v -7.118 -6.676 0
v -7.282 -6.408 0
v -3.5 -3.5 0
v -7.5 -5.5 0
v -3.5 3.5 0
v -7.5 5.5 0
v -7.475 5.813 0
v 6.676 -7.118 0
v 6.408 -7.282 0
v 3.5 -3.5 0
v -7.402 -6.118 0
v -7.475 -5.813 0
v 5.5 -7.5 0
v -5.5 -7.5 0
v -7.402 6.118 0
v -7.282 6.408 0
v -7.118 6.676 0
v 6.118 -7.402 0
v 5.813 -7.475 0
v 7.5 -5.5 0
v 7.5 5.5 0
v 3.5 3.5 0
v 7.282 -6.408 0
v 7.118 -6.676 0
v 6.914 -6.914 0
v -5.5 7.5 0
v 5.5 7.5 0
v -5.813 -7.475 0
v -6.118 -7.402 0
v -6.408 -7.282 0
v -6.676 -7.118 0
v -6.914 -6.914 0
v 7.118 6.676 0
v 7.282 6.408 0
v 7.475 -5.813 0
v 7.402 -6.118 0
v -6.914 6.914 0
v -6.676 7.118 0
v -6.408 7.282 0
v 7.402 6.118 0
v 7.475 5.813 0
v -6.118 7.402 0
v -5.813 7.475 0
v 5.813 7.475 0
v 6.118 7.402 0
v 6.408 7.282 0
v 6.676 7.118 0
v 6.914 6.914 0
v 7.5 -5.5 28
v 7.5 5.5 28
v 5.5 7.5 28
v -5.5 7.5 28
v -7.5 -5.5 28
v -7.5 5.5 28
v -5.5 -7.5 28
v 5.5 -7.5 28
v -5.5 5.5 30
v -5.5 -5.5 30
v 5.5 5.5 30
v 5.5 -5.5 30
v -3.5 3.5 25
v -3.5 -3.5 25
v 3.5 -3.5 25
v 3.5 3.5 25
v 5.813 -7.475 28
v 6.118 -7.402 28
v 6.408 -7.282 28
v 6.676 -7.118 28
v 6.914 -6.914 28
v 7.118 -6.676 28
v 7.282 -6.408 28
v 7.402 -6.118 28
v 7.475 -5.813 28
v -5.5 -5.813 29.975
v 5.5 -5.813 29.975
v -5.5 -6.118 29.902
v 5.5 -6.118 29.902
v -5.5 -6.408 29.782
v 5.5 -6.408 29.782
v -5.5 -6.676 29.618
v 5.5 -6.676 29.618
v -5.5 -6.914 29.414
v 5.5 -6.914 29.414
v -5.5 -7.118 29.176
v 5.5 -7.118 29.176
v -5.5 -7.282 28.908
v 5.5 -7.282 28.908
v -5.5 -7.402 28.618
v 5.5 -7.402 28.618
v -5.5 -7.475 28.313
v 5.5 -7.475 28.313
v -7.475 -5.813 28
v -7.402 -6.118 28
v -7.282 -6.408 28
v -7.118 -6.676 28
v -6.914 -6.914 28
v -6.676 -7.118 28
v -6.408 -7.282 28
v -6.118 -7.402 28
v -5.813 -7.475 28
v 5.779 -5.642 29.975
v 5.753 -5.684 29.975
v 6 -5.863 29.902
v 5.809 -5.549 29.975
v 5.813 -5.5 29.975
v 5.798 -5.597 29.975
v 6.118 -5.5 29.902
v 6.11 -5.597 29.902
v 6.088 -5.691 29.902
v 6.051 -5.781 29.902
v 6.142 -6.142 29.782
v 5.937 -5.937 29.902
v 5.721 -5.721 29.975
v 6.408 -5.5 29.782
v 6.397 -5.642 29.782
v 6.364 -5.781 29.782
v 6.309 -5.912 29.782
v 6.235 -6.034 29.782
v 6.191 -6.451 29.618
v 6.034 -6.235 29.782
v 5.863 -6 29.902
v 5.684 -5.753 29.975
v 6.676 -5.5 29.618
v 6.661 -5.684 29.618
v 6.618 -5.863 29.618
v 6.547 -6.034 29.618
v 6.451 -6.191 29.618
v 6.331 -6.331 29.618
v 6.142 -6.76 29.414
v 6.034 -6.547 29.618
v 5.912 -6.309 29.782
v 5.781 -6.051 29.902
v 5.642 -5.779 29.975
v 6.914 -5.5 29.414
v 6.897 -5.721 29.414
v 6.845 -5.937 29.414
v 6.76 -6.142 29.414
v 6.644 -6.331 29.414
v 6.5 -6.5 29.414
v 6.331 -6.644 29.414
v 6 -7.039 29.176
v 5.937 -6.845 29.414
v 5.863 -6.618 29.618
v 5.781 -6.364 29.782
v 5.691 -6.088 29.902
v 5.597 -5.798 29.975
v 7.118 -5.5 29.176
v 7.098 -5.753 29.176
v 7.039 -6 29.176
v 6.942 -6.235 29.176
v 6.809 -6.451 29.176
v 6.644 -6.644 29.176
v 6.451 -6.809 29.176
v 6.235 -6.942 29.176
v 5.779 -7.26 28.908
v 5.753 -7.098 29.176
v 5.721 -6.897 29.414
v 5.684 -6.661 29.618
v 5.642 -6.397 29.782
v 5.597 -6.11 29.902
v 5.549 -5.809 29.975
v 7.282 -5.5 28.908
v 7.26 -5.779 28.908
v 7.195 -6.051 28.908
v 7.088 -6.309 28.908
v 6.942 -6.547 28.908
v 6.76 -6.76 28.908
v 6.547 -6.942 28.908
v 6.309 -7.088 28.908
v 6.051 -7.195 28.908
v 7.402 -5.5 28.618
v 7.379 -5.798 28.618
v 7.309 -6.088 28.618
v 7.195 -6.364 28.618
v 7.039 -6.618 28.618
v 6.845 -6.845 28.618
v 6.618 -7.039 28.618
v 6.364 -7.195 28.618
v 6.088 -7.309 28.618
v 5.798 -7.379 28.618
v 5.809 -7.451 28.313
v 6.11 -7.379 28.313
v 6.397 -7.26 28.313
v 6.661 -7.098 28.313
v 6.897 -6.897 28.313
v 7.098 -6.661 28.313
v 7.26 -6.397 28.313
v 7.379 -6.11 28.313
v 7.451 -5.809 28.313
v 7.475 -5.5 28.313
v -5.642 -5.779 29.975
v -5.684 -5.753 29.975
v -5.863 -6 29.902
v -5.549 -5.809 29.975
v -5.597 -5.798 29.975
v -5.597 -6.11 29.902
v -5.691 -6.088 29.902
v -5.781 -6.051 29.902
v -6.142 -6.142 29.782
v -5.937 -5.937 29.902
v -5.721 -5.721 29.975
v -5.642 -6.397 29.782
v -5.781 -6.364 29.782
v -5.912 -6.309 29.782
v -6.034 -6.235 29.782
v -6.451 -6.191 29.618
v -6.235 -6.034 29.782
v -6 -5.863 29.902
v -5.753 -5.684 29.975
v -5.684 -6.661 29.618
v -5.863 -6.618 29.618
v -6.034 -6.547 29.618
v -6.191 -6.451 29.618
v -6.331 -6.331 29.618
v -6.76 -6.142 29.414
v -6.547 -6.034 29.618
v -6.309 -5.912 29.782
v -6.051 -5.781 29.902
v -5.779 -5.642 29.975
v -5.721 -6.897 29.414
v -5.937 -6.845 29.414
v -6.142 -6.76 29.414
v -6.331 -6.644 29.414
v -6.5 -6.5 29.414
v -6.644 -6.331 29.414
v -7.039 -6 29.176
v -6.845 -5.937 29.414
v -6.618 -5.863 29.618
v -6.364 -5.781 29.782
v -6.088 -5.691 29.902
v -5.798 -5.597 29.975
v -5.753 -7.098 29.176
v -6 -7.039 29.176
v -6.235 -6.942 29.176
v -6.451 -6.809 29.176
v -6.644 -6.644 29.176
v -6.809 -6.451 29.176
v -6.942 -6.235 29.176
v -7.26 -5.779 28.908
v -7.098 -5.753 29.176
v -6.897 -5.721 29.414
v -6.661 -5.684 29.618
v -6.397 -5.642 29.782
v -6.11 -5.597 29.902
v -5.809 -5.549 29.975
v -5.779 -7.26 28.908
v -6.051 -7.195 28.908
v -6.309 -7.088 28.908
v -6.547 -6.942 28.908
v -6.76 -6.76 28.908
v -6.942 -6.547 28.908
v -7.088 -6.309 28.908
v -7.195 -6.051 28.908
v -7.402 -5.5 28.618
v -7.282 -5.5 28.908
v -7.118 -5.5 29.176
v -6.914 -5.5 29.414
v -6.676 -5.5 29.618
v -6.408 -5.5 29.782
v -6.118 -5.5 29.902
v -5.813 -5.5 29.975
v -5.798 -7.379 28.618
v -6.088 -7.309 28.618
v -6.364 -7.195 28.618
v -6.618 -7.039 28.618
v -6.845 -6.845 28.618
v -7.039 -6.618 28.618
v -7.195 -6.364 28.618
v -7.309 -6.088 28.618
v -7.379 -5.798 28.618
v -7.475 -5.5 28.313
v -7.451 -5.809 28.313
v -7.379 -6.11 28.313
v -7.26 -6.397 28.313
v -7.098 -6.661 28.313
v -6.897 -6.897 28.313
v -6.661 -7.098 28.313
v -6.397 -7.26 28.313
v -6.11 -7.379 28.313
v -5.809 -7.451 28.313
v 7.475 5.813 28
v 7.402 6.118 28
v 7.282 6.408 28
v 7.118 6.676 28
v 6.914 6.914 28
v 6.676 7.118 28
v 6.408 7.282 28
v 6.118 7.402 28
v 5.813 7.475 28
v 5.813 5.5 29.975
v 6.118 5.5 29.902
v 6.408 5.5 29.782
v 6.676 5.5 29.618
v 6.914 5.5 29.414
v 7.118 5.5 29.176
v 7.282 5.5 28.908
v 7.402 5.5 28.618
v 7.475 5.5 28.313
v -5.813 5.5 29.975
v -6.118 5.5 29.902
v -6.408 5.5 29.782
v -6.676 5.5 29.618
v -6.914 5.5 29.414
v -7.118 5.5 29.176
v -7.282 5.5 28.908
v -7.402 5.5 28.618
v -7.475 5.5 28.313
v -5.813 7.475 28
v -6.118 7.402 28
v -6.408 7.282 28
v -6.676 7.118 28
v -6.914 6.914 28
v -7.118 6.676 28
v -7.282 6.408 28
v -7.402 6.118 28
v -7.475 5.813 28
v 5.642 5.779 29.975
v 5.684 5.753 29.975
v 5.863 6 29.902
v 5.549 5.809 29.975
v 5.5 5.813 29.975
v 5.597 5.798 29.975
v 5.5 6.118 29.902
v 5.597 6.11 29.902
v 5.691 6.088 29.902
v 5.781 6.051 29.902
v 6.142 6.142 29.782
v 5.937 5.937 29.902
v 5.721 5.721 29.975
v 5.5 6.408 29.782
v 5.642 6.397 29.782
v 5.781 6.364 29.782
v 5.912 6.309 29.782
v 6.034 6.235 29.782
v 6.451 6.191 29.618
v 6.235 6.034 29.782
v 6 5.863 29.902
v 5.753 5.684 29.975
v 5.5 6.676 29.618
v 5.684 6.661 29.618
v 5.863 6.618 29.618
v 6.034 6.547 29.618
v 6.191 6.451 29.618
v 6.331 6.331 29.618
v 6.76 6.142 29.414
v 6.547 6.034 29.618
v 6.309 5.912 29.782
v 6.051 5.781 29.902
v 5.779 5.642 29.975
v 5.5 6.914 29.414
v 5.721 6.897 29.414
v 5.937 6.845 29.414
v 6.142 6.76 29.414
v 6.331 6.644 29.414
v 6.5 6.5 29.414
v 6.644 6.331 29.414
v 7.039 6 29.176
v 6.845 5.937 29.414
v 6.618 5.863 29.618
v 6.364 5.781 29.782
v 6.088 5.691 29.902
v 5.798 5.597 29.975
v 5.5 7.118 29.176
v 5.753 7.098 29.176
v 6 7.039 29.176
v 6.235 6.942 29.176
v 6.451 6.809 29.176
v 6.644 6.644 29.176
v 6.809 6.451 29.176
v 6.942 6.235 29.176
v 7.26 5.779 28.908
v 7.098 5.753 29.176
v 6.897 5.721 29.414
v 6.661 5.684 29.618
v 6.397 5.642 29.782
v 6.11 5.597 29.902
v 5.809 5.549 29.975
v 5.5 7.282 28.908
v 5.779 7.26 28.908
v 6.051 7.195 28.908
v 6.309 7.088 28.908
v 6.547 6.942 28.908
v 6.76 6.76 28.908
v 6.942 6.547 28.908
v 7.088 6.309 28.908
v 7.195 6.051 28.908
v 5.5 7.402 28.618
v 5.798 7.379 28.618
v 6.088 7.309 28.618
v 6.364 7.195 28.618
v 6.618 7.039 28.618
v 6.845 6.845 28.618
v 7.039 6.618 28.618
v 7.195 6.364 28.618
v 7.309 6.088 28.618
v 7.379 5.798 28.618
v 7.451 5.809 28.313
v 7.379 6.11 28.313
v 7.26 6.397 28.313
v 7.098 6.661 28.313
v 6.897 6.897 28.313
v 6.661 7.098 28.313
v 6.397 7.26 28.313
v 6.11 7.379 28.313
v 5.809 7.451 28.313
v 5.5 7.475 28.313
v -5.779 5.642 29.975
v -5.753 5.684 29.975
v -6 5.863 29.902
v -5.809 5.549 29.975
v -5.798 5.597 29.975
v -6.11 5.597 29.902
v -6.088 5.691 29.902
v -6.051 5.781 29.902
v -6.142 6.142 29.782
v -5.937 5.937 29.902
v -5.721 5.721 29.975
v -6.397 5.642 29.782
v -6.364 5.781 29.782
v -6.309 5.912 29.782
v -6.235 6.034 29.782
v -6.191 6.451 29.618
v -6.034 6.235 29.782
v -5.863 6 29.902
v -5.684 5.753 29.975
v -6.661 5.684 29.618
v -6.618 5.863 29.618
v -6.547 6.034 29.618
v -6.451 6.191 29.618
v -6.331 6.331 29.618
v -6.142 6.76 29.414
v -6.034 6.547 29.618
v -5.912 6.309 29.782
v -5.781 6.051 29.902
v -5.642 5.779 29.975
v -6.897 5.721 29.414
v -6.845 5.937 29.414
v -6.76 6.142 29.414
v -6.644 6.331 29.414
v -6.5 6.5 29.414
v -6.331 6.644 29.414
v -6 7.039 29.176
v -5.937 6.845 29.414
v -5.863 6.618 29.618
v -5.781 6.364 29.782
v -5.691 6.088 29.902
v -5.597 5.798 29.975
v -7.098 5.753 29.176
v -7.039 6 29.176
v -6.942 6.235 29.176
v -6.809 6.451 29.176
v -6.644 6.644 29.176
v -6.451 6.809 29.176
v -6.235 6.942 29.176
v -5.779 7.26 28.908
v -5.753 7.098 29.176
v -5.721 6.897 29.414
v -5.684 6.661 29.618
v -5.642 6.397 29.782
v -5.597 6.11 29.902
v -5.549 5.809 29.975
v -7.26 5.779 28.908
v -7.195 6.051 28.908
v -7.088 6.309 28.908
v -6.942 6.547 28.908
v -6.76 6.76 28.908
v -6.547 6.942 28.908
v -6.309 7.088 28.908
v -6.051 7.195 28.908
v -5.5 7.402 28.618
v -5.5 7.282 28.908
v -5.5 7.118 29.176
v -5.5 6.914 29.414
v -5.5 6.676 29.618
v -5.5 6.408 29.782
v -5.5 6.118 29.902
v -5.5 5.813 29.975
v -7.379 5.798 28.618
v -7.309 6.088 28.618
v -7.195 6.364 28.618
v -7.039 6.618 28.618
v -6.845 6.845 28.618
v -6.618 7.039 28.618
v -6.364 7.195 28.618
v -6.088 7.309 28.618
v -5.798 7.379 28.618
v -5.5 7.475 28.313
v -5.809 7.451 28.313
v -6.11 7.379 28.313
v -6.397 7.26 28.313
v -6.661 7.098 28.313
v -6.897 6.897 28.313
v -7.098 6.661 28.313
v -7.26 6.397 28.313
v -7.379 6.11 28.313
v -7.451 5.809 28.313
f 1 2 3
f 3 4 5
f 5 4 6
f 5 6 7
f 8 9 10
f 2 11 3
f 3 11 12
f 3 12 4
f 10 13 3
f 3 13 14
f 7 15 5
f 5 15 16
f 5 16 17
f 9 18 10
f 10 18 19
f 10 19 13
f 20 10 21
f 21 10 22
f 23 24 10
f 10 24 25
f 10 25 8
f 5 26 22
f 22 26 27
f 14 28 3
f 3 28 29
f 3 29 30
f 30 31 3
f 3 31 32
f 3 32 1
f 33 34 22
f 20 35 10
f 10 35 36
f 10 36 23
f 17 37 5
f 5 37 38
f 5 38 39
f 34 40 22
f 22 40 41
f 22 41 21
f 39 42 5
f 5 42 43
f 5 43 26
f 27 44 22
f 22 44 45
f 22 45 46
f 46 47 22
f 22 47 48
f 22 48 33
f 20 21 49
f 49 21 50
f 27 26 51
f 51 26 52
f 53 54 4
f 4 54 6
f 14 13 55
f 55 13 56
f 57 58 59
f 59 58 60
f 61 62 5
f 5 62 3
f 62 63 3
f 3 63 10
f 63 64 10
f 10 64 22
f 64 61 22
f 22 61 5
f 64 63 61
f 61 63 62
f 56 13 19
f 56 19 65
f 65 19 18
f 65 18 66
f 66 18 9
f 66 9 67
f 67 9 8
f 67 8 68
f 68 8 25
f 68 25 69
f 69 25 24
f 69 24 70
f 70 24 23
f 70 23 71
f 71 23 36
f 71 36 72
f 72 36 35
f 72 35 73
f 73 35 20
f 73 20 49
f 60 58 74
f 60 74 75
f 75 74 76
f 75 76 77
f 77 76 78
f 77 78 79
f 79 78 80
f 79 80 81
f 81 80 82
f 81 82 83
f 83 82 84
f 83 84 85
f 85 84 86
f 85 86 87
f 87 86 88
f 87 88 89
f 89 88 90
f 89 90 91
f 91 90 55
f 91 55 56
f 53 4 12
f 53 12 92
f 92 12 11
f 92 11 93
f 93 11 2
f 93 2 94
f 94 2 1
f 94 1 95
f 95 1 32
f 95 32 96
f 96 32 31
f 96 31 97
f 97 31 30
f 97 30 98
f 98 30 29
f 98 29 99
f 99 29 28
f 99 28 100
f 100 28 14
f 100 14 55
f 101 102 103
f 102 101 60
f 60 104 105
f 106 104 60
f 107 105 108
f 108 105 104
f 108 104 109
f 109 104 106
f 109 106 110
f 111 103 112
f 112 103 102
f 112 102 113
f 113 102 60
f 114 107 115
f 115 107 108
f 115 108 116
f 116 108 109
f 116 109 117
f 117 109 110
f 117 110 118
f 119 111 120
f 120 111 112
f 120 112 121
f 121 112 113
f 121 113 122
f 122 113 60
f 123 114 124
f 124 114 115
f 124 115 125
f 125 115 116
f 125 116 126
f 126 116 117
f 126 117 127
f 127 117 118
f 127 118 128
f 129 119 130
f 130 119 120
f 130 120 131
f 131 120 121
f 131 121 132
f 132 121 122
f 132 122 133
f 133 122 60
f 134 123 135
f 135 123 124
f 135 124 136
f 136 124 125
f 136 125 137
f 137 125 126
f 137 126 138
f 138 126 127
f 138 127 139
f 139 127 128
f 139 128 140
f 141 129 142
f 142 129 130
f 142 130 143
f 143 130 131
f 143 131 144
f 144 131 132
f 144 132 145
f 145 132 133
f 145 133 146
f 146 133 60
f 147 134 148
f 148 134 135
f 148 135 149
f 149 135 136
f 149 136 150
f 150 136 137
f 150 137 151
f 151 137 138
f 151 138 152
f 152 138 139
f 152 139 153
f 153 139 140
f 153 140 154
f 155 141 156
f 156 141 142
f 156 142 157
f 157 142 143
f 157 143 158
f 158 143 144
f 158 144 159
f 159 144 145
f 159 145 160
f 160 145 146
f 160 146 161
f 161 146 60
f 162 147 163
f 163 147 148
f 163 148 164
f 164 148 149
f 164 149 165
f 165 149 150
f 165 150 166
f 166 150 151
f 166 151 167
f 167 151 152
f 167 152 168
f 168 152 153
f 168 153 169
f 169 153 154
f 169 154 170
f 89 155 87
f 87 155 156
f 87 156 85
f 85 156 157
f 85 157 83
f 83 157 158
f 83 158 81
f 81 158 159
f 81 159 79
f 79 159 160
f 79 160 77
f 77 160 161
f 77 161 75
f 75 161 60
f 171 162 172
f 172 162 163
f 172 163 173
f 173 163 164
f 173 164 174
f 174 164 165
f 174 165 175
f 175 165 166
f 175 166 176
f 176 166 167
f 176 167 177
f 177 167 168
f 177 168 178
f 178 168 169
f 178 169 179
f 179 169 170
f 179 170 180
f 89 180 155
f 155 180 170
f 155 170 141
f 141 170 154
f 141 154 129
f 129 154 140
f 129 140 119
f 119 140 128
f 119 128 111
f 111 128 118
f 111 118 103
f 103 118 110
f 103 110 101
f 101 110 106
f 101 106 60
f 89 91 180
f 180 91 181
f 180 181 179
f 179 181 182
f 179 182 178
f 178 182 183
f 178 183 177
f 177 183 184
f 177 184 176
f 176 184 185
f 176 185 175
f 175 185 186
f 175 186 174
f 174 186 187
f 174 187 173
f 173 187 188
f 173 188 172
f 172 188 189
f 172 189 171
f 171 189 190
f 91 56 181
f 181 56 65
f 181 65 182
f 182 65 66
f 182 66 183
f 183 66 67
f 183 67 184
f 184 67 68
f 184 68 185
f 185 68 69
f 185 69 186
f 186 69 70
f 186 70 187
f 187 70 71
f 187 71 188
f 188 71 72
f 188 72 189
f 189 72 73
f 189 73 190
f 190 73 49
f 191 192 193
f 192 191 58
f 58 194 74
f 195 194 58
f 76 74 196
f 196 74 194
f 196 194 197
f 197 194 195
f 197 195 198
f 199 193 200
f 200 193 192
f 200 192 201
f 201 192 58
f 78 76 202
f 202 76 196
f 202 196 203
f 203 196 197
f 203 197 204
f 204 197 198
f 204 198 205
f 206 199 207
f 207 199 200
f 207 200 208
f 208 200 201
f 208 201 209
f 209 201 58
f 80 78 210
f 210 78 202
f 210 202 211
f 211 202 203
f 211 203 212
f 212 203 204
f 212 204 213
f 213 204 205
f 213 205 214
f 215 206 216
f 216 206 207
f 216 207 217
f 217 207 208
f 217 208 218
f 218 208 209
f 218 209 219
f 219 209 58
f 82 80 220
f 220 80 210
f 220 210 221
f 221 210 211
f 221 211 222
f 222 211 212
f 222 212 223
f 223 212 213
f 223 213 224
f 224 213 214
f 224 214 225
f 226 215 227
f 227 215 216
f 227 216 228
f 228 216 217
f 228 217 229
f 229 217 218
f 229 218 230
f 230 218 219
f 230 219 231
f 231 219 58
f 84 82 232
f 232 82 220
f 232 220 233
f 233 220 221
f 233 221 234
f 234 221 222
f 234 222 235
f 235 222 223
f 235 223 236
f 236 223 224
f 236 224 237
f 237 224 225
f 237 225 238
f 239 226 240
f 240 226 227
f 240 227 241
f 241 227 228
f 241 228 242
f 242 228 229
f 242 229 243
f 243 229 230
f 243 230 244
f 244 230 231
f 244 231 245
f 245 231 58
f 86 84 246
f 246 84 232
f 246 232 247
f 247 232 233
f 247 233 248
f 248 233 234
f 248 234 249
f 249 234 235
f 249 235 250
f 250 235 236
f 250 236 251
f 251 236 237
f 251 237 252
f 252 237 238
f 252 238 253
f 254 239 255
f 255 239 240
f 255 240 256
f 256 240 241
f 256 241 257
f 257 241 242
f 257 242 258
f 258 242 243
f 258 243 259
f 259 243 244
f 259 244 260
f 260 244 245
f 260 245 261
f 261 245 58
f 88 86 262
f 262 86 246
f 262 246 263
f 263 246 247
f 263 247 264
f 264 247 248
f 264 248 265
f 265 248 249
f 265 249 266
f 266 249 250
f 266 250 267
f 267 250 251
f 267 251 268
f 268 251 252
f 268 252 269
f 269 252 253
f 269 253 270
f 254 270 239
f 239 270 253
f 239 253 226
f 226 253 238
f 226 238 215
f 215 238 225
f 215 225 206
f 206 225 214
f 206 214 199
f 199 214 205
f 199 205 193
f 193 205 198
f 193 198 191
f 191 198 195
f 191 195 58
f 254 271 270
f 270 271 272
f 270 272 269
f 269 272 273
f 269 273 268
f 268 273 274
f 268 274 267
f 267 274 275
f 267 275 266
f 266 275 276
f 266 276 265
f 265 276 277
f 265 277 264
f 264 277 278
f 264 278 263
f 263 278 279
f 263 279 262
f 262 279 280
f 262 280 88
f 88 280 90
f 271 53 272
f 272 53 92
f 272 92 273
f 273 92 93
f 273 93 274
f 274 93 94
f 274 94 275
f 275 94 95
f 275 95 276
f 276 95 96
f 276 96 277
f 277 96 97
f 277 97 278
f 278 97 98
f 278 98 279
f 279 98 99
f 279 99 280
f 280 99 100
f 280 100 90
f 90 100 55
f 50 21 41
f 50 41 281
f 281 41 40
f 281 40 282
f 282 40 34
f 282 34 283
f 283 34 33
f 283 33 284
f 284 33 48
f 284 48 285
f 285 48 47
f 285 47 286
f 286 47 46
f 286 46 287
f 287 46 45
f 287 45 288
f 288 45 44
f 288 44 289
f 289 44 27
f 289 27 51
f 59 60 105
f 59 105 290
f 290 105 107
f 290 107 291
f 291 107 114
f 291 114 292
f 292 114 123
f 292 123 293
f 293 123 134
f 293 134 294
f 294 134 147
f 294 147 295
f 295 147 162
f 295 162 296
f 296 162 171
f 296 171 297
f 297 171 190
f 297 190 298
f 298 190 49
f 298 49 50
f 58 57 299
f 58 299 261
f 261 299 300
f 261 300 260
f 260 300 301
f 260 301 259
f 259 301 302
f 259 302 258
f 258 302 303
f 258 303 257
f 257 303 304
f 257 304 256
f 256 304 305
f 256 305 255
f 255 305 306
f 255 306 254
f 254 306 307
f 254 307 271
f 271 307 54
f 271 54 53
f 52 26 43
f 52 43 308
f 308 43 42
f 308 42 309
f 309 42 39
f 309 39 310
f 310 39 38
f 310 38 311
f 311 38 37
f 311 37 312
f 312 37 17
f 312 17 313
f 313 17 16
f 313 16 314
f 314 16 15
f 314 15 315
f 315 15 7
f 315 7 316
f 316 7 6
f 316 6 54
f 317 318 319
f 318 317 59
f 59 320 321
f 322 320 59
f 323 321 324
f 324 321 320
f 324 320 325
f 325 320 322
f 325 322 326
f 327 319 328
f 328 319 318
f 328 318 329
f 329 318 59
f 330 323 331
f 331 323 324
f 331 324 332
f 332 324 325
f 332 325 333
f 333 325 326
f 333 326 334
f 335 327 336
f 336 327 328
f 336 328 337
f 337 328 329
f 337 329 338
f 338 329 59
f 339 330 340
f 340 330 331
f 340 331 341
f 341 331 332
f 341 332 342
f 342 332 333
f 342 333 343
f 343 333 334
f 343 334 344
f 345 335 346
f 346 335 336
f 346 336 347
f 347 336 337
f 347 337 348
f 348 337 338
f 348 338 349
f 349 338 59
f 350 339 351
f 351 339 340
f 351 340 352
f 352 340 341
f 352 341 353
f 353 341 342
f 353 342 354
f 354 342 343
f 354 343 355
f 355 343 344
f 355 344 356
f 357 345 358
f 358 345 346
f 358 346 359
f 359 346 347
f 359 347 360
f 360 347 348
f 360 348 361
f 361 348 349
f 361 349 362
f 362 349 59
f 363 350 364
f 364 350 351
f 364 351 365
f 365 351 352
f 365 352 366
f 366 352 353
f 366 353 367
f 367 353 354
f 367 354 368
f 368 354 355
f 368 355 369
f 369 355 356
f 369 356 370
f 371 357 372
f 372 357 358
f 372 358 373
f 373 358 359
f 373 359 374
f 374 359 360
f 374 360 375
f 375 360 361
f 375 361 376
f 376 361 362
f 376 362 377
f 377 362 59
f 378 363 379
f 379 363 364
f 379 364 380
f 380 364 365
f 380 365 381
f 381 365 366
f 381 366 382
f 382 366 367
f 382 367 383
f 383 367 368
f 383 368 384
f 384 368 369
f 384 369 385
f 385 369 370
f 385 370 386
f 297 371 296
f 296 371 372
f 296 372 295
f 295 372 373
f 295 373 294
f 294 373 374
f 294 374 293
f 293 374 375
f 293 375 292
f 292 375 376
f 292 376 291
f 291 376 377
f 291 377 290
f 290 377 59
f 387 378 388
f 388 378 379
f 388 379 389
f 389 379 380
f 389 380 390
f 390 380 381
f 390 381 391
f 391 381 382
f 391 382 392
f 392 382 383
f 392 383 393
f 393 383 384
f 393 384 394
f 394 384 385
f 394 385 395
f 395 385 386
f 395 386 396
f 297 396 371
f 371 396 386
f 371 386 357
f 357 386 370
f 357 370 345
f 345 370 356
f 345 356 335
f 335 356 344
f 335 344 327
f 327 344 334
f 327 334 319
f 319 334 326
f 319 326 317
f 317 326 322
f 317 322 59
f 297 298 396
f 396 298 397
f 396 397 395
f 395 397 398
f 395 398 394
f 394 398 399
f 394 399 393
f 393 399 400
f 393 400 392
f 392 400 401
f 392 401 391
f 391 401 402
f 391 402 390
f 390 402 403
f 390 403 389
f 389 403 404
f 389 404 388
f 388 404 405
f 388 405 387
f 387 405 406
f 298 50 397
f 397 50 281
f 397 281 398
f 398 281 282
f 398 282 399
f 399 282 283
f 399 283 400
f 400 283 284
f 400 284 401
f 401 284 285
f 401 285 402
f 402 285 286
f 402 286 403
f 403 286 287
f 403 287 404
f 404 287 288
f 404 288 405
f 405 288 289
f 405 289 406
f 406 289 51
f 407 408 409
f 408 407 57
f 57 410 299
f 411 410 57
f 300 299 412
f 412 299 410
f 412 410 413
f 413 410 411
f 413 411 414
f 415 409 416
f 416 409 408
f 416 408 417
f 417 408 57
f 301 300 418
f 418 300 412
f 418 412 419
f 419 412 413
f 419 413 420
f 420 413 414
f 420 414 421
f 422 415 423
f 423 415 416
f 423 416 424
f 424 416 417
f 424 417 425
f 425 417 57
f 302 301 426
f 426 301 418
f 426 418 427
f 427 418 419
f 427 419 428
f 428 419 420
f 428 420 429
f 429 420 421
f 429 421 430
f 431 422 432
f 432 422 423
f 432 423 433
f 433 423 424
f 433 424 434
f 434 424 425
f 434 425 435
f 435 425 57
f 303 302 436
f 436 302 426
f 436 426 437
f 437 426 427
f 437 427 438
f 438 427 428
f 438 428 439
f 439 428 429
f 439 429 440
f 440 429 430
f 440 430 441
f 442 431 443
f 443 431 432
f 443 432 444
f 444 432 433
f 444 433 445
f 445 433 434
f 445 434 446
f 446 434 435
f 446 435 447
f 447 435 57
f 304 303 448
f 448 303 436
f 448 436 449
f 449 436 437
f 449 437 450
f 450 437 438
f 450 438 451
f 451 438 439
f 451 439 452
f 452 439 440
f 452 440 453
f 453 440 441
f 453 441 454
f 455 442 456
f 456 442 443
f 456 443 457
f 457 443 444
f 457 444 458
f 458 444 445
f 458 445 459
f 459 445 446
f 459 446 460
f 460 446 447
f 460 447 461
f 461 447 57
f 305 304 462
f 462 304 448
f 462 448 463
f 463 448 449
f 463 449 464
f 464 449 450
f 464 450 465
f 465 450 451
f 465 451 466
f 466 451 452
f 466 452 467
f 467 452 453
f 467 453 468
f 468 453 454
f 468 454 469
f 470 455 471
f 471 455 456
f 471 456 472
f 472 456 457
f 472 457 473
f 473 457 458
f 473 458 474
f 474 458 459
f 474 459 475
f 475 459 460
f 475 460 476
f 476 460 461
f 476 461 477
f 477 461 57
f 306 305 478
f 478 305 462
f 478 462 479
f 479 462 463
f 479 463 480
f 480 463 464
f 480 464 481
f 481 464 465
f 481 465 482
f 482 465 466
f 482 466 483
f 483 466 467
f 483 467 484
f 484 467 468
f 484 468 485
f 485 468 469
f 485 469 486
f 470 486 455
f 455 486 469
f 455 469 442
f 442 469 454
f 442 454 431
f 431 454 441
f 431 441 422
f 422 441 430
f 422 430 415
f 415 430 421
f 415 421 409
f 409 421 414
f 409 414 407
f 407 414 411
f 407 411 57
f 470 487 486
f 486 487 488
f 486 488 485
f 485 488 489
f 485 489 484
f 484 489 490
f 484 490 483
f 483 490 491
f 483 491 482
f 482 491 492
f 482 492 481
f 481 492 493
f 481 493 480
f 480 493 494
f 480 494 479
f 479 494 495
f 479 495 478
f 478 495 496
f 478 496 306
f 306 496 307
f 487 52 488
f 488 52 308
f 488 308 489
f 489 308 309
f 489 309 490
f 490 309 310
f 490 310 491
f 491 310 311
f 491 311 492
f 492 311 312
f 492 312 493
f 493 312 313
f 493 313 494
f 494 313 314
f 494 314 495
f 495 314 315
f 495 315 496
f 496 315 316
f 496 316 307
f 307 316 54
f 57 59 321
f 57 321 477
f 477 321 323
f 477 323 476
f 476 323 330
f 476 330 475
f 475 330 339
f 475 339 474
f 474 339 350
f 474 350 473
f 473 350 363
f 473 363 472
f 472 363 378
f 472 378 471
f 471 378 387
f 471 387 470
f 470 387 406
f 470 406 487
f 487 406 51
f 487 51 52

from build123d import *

# Parameters (mm, degrees)
SKETCH_1_W               = 15
SKETCH_1_H               = 15
EXTRUDE_1_DEPTH          = 30
SKETCH_2_W               = 7
SKETCH_2_H               = 7
CUT_EXTRUDE_1_DEPTH      = 25
CUT_EXTRUDE_1_DEPTH_BACK = 0.001
FILLET_1_R               = 2


with BuildPart() as part:
    # 草图1 → 凸台-拉伸1 (new body)
    with BuildSketch(Plane.XY):
        Rectangle(SKETCH_1_W, SKETCH_1_H)
    extrude(amount=EXTRUDE_1_DEPTH)

    # 草图2 → 切除-拉伸1 (cut, two sides)
    with BuildSketch(Plane.XY) as cut_extrude_1_sk:
        Rectangle(SKETCH_2_W, SKETCH_2_H)
    extrude(amount=CUT_EXTRUDE_1_DEPTH, mode=Mode.SUBTRACT)
    extrude(cut_extrude_1_sk.sketch, amount=-CUT_EXTRUDE_1_DEPTH_BACK, mode=Mode.SUBTRACT)

    # 圆角1
    fillet_1_edges = [part.edges().sort_by_distance(p)[0] for p in [
        (-7.5, 0, 30),
        (0, -7.5, 30),
        (7.5, 0, 30),
        (0, 7.5, 30),
        (7.5, -7.5, 15),
        (-7.5, -7.5, 15),
        (-7.5, 7.5, 15),
        (7.5, 7.5, 15),
    ]]
    fillet(fillet_1_edges, radius=FILLET_1_R)


solid = part.part
